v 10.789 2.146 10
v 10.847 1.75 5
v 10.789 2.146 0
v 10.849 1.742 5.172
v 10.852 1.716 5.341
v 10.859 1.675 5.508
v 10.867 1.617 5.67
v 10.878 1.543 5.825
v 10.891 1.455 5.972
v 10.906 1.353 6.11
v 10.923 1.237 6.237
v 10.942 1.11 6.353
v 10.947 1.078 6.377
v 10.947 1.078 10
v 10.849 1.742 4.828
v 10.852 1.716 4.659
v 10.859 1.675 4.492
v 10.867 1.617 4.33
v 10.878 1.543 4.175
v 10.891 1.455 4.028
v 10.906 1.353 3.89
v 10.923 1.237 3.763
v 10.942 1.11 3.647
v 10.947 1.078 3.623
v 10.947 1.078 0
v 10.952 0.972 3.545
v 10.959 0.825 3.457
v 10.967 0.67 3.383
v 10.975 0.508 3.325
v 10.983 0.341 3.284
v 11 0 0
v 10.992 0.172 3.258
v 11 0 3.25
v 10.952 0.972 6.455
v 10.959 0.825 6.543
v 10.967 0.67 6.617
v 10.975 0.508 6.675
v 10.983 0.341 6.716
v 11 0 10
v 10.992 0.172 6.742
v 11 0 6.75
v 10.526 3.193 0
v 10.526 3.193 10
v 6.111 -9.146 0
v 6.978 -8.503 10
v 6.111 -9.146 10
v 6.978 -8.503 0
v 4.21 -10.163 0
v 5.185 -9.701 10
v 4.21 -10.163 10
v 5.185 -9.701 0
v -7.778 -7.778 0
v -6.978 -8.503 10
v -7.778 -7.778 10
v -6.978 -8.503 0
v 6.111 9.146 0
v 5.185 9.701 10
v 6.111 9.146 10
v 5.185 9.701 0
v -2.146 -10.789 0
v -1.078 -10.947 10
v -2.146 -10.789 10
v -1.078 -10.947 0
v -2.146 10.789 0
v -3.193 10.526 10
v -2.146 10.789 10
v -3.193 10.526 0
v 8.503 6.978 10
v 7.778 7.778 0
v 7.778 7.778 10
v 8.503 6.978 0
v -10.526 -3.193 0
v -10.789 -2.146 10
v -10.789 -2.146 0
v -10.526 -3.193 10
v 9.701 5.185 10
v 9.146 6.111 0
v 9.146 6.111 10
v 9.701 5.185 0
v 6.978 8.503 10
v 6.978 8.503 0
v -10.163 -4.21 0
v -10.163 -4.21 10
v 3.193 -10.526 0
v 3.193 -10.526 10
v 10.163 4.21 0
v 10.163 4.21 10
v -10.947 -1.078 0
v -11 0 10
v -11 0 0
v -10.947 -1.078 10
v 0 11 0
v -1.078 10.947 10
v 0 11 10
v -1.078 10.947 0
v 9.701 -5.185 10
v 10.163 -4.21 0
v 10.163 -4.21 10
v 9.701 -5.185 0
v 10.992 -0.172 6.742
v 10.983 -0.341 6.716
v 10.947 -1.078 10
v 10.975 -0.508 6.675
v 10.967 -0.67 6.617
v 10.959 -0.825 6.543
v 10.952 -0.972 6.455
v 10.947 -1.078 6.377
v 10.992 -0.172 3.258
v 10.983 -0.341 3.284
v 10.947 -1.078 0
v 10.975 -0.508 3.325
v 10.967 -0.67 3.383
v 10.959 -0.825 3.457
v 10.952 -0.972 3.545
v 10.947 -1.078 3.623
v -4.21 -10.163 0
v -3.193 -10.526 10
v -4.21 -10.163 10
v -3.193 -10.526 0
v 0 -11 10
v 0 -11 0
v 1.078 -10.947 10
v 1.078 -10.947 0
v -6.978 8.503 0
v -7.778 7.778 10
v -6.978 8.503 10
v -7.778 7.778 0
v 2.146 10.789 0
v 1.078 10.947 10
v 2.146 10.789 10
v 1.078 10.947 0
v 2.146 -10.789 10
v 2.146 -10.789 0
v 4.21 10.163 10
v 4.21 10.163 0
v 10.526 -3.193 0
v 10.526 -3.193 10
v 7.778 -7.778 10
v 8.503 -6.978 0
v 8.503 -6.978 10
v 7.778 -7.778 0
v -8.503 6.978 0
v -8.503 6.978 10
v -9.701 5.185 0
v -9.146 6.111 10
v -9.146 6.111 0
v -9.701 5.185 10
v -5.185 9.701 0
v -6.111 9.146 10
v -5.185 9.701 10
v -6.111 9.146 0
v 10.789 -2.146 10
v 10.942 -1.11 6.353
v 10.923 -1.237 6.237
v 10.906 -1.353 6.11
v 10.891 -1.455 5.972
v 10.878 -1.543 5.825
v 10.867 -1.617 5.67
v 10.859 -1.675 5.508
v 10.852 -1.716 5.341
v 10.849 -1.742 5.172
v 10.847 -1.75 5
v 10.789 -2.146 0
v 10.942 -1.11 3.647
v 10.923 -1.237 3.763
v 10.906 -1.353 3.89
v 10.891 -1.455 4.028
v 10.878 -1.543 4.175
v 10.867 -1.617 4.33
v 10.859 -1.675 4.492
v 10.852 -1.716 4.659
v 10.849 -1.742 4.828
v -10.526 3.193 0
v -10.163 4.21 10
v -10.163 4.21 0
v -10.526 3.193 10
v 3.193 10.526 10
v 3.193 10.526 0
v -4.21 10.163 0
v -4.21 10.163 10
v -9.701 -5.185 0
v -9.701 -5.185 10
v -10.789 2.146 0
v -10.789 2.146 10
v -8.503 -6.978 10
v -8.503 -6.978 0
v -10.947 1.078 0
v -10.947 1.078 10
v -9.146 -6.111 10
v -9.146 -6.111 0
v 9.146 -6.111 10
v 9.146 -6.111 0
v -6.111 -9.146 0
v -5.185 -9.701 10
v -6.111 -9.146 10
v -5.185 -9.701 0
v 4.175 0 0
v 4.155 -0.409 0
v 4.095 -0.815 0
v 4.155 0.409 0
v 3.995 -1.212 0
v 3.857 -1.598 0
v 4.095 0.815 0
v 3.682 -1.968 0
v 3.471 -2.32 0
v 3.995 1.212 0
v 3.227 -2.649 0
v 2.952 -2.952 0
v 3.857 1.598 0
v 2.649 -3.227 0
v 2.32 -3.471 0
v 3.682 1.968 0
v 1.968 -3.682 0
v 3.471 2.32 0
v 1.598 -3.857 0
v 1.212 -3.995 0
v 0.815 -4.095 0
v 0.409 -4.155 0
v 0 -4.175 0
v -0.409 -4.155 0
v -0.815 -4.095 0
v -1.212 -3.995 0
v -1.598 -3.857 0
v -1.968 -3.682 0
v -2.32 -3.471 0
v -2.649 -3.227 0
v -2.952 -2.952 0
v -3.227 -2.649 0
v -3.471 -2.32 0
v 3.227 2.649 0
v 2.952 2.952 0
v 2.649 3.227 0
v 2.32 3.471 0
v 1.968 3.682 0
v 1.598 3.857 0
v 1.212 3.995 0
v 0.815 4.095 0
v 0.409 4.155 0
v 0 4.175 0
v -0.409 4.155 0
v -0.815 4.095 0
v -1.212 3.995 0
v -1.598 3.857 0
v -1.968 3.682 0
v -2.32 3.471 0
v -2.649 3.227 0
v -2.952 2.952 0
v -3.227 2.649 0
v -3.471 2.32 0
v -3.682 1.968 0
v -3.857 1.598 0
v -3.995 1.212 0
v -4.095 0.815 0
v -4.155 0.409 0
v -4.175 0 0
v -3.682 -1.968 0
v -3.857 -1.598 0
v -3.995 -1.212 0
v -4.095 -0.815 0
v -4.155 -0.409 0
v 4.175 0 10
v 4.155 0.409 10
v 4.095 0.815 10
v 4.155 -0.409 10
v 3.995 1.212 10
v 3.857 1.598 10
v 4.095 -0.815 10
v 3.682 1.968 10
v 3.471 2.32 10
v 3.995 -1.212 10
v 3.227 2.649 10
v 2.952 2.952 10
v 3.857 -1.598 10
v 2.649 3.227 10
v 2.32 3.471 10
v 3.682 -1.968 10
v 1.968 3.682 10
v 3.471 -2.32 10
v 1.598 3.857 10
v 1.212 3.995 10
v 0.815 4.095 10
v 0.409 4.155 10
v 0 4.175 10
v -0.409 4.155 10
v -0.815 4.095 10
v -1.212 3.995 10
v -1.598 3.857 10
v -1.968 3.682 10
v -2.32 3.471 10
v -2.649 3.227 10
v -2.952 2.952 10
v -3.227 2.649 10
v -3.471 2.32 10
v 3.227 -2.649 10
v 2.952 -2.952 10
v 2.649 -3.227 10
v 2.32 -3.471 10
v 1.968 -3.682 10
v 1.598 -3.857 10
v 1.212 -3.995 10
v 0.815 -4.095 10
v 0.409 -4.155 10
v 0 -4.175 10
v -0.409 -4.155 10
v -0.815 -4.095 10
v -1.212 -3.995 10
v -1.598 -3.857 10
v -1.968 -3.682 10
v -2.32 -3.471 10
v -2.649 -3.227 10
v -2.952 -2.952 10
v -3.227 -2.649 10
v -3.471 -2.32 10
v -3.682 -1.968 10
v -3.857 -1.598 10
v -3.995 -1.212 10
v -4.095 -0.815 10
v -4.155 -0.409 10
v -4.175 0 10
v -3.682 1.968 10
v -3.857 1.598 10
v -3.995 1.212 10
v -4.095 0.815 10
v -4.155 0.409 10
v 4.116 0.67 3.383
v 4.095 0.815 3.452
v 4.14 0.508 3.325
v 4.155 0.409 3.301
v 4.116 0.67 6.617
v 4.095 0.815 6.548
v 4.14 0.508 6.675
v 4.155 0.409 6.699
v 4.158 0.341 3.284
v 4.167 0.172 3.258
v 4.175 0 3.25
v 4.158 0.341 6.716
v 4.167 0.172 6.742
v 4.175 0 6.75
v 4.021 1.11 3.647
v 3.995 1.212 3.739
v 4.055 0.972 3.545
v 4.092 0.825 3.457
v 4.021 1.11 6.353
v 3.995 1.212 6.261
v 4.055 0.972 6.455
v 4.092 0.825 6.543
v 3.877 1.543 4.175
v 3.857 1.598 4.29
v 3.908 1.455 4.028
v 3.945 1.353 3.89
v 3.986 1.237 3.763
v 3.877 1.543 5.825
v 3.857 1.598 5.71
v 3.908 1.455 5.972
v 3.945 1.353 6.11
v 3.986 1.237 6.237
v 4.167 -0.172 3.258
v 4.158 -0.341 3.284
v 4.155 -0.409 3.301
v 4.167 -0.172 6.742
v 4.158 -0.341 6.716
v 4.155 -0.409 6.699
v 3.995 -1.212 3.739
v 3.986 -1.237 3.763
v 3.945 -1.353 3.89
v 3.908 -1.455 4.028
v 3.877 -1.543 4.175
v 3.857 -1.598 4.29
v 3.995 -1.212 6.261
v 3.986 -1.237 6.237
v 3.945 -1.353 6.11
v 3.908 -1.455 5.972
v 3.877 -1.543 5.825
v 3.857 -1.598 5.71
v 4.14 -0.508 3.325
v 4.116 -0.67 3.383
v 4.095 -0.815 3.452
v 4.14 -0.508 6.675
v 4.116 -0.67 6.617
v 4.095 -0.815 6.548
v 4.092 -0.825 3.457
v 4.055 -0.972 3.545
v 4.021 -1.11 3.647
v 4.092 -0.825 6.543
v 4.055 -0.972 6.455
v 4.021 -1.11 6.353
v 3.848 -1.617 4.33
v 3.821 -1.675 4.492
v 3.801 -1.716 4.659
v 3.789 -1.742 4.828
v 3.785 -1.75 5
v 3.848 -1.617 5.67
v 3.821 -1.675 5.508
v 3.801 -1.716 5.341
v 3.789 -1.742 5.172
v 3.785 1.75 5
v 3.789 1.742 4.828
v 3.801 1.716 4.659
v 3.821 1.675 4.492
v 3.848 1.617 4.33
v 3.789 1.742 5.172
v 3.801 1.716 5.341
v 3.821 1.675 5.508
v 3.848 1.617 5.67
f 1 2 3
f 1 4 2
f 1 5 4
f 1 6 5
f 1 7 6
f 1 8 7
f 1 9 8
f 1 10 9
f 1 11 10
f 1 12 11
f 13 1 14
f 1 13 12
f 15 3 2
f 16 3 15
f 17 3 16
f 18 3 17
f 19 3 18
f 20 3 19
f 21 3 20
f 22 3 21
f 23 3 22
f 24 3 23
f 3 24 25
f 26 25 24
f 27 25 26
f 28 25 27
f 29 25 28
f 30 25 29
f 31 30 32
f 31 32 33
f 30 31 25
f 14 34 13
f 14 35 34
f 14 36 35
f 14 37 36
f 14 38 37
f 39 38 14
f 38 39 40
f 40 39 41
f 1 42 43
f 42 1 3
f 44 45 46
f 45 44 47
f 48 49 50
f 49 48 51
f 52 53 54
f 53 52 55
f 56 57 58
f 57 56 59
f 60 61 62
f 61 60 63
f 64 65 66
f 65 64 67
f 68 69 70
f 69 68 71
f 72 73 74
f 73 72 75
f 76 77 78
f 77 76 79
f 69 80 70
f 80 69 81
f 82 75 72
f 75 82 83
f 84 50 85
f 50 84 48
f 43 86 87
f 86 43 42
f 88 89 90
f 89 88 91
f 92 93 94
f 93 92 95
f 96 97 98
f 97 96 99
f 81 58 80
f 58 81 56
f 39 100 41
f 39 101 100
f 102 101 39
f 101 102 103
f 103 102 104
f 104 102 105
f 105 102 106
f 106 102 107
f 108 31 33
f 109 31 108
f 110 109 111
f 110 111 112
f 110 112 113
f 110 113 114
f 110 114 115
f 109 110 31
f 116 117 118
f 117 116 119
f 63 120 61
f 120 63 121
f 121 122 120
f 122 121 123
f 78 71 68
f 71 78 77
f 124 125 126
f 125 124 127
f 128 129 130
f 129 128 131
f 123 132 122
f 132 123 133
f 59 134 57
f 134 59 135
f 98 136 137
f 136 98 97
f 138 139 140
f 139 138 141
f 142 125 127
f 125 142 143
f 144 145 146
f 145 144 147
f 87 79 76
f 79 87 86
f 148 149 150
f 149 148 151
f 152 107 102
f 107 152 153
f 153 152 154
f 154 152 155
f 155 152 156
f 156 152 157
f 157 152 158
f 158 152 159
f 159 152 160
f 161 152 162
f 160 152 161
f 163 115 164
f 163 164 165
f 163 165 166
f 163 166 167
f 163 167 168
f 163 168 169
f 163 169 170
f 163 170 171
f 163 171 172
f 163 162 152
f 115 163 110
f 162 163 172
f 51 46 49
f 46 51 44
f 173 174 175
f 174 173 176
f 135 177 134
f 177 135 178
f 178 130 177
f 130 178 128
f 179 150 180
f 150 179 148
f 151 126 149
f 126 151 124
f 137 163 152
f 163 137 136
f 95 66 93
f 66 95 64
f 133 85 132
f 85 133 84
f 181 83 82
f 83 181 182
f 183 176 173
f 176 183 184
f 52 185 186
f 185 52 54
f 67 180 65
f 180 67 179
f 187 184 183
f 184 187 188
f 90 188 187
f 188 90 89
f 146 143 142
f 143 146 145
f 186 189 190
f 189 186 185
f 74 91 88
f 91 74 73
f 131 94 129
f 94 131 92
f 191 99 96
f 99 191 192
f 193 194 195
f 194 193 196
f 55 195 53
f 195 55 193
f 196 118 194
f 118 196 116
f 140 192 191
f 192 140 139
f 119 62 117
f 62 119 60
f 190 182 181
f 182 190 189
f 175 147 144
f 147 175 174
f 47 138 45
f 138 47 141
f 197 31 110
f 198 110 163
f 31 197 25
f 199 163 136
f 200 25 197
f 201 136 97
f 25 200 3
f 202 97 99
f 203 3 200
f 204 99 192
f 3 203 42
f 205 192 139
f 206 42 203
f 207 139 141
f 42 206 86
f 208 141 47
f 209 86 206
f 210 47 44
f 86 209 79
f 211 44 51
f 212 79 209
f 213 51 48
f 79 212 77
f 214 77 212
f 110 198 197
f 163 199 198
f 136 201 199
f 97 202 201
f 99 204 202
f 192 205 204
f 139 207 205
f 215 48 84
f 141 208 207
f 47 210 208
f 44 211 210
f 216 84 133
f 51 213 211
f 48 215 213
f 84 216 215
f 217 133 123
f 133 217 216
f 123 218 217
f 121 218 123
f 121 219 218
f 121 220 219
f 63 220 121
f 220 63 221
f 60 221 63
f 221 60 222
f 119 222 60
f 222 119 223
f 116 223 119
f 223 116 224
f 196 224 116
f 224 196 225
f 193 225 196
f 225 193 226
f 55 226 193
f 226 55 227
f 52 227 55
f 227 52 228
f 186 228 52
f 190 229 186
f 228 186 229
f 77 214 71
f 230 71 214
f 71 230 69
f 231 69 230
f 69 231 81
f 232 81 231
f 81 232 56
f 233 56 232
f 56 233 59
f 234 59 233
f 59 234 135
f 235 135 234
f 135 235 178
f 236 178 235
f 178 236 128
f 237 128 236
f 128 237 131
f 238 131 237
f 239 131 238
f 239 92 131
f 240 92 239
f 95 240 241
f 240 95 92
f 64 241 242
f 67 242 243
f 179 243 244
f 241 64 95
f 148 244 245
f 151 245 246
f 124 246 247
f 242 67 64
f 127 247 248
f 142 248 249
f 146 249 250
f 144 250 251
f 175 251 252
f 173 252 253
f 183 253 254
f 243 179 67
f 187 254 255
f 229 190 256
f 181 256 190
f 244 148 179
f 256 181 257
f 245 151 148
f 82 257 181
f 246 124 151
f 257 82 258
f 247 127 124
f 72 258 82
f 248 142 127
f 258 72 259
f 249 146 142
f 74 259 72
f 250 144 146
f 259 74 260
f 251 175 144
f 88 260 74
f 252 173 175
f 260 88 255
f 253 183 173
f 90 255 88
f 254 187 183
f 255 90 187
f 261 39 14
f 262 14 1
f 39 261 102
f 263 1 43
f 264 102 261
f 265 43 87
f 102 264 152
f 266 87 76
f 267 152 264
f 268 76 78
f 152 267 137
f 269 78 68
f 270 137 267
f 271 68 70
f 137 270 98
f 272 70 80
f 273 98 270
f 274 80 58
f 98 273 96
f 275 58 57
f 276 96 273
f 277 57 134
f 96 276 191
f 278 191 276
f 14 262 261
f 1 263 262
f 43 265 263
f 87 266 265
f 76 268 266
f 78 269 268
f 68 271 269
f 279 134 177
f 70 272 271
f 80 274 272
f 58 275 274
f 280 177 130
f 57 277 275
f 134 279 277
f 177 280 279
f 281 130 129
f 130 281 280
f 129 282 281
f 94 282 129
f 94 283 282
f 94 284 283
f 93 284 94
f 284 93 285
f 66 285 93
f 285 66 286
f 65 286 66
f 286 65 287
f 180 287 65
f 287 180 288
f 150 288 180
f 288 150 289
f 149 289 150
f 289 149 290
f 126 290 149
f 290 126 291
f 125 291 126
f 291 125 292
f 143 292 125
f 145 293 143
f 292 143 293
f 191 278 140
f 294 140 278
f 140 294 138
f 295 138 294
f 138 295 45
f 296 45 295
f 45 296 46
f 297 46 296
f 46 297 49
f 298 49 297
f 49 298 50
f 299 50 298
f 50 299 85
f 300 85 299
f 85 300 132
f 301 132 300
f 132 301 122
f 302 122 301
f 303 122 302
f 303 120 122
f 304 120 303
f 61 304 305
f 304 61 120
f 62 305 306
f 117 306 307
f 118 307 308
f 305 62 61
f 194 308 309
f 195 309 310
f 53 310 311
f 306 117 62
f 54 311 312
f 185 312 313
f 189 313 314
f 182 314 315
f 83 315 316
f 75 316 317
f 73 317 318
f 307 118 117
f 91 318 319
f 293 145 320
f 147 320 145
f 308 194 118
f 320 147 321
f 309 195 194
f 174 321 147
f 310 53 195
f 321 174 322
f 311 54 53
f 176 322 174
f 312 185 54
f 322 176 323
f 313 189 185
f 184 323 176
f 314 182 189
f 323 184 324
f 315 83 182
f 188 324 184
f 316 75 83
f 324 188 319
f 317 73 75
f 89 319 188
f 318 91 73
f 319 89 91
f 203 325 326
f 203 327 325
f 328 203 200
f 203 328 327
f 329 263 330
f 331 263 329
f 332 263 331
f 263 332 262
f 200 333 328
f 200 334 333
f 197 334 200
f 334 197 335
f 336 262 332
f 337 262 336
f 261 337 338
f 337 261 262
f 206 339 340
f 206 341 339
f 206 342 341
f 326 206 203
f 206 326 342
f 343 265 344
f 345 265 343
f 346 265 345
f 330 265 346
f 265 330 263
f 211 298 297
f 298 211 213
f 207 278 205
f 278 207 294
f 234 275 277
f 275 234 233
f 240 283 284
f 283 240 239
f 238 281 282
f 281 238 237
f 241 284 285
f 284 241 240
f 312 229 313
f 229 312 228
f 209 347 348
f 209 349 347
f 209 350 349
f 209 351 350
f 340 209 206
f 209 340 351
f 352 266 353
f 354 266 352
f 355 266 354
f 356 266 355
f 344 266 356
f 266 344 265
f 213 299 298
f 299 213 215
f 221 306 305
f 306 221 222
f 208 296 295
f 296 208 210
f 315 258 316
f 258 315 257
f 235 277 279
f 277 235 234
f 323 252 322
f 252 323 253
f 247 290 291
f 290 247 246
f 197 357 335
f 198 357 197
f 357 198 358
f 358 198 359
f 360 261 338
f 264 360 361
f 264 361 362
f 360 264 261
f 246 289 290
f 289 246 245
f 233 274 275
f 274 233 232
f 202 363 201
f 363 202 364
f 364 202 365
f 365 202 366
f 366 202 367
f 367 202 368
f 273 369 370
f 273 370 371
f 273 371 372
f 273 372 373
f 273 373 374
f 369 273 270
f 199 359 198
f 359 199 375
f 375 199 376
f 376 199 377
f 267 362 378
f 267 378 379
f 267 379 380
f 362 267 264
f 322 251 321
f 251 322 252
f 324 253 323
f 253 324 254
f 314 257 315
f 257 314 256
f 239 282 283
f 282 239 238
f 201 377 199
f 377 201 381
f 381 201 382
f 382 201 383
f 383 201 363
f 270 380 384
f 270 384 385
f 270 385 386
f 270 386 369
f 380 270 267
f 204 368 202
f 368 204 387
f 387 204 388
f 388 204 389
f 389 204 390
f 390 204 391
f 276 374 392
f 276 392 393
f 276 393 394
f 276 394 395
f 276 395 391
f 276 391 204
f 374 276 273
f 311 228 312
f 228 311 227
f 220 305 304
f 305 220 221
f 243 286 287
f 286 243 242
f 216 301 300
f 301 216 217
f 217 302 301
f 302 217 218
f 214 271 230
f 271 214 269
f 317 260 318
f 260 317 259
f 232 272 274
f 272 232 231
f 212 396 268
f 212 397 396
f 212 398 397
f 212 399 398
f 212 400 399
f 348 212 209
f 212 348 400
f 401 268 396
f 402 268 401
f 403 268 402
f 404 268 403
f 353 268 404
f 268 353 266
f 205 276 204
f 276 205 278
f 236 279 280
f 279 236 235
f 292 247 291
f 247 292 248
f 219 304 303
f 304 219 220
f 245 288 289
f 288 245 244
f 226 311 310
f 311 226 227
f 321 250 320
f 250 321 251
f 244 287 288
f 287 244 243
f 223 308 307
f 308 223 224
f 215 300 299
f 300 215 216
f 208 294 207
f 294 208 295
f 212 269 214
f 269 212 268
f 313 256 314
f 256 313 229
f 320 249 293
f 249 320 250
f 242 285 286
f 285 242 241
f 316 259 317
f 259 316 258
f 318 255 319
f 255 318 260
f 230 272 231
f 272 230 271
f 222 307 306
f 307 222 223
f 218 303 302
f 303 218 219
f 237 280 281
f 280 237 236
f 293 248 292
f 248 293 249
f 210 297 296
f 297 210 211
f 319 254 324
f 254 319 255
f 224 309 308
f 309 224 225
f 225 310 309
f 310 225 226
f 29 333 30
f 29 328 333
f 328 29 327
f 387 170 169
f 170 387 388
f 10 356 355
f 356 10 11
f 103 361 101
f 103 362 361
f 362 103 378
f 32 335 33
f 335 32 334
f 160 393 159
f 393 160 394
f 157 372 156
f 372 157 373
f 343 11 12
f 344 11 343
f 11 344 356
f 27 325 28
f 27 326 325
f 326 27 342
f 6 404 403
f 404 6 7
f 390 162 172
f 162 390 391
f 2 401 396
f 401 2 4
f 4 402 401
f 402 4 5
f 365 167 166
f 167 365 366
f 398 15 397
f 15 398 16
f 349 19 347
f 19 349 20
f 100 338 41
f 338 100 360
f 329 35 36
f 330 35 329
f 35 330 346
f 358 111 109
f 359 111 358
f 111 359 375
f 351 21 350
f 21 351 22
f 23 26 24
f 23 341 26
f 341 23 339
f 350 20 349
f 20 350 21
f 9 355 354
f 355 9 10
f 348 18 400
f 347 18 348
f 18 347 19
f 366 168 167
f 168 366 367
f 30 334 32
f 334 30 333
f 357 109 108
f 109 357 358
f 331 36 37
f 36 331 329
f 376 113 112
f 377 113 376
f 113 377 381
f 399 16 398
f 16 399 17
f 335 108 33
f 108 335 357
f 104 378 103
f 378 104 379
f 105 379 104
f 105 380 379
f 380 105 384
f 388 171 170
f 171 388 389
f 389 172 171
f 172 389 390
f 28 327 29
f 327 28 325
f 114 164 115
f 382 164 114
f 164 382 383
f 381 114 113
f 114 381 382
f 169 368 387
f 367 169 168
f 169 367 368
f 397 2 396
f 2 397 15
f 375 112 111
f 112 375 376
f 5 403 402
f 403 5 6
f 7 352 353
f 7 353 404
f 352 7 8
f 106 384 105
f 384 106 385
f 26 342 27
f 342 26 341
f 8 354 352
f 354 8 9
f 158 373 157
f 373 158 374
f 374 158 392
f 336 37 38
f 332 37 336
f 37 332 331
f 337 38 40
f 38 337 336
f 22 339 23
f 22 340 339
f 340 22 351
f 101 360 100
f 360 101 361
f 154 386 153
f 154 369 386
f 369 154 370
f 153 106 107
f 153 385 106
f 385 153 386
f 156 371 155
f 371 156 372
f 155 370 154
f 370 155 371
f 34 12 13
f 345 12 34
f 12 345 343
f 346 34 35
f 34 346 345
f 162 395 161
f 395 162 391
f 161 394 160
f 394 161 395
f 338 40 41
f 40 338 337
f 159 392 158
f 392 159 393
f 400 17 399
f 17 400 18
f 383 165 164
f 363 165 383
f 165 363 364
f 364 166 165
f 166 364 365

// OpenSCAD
// file: parameters.scad
// =============================================================================
// Gen-AL Stacked dual-stator mid-rotor copper-max plus — WOUND-AWARE (HARD GATE)
// ONE mid dual-face Halbach rotor | TWO wound pancake stators | 18 coils ×155 t
// =============================================================================

wire_awg            = 26;
wire_od             = 0.45;
turns               = 155;      // +10 vs Gen-AI 145; 18×155×~0.120 ≈ 335 m
fill                = 0.70;
layers_per_face     = 2;
wind_build_axial    = layers_per_face * wire_od * fill;   // 0.63
wind_build_radial   = 3 * wire_od * fill;                 // 0.945

coil_id_r           = 18.5;
coil_od_r           = 63.5;
span_deg            = 34.0;     // 9 stations × 40°
former_web          = 1.40;     // thinner vs AI 1.50
flange_t            = 0.60;
wall                = 1.2;
slot_w              = 2.4;
mount_hole          = 3.5;
tab_len             = 7.0;

former_bare_h       = former_web + 2 * flange_t;            // 2.60
coil_envelope_h     = former_bare_h + 2 * wind_build_axial; // 3.86

run_clear           = 0.50;     // tighter vs AI 0.52
gap_spacer_h        = run_clear + wind_build_axial;         // 1.13
m2m                 = coil_envelope_h + 2 * run_clear;      // 4.86 per gap

coil_stations       = 9;        // per stator; ×2 = 18 total
bay_r_in            = coil_id_r - 2.0 - wind_build_radial;
bay_r_out           = coil_od_r + 2.0 + wind_build_radial;
bay_span            = span_deg + 4.0;
bay_offset          = 2.0;
bay_depth           = former_bare_h + wind_build_axial;     // wound sits in bay
stator_back_web     = 2.0;
stator_thick        = bay_depth + stator_back_web;
stator_od           = 156.0;
shaft_clear_stator  = 38.0;
coil_mount_r        = 28.0;

large_pocket_d      = 20.3;
small_pocket_d      = 5.3;
pocket_h            = 5.2;
large_n             = 8;
R_large             = 41.0;     // tighter copper overlap vs AI R=42
R_small_inner       = 27.0;
R_small_mid         = 41.0;
R_small_outer       = 57.0;
carrier_od          = 154.0;
mid_carrier_thick   = 12.0;
hub_h               = 10.0;
hub_od              = 30.0;
rotor_b_offset_deg  = 22.5;

shaft_bore          = 8.35;
bearing_d           = 21.85;
bearing_h           = 7.2;
m3_clear            = 3.5;
bolt_r_inner        = 36.0;
bolt_n_inner        = 6;
flange_bolt_r       = 72.0;
flange_bolt_n       = 6;
brace_r             = 68.0;
brace_d             = 4.3;
brace_n             = 4;

spacer_pad_od       = 14.0;
spacer_pad_id       = m3_clear;
endbell_od          = 156.0;
endbell_thick       = 8.0;
endbell_shaft_clear = 10.0;

$fn = 64;
// main file
// Gen-AL shaft collar — print ×2–4
include <parameters.scad>;
$fn = 64;
od = 22; id = shaft_bore; h = 10; set_d = 3.5;
difference() {
    cylinder(d=od, h=h);
    translate([0, 0, -0.1]) cylinder(d=id, h=h + 0.2);
    translate([0, 0, h/2]) rotate([0, 90, 0]) cylinder(d=set_d, h=od);
}
